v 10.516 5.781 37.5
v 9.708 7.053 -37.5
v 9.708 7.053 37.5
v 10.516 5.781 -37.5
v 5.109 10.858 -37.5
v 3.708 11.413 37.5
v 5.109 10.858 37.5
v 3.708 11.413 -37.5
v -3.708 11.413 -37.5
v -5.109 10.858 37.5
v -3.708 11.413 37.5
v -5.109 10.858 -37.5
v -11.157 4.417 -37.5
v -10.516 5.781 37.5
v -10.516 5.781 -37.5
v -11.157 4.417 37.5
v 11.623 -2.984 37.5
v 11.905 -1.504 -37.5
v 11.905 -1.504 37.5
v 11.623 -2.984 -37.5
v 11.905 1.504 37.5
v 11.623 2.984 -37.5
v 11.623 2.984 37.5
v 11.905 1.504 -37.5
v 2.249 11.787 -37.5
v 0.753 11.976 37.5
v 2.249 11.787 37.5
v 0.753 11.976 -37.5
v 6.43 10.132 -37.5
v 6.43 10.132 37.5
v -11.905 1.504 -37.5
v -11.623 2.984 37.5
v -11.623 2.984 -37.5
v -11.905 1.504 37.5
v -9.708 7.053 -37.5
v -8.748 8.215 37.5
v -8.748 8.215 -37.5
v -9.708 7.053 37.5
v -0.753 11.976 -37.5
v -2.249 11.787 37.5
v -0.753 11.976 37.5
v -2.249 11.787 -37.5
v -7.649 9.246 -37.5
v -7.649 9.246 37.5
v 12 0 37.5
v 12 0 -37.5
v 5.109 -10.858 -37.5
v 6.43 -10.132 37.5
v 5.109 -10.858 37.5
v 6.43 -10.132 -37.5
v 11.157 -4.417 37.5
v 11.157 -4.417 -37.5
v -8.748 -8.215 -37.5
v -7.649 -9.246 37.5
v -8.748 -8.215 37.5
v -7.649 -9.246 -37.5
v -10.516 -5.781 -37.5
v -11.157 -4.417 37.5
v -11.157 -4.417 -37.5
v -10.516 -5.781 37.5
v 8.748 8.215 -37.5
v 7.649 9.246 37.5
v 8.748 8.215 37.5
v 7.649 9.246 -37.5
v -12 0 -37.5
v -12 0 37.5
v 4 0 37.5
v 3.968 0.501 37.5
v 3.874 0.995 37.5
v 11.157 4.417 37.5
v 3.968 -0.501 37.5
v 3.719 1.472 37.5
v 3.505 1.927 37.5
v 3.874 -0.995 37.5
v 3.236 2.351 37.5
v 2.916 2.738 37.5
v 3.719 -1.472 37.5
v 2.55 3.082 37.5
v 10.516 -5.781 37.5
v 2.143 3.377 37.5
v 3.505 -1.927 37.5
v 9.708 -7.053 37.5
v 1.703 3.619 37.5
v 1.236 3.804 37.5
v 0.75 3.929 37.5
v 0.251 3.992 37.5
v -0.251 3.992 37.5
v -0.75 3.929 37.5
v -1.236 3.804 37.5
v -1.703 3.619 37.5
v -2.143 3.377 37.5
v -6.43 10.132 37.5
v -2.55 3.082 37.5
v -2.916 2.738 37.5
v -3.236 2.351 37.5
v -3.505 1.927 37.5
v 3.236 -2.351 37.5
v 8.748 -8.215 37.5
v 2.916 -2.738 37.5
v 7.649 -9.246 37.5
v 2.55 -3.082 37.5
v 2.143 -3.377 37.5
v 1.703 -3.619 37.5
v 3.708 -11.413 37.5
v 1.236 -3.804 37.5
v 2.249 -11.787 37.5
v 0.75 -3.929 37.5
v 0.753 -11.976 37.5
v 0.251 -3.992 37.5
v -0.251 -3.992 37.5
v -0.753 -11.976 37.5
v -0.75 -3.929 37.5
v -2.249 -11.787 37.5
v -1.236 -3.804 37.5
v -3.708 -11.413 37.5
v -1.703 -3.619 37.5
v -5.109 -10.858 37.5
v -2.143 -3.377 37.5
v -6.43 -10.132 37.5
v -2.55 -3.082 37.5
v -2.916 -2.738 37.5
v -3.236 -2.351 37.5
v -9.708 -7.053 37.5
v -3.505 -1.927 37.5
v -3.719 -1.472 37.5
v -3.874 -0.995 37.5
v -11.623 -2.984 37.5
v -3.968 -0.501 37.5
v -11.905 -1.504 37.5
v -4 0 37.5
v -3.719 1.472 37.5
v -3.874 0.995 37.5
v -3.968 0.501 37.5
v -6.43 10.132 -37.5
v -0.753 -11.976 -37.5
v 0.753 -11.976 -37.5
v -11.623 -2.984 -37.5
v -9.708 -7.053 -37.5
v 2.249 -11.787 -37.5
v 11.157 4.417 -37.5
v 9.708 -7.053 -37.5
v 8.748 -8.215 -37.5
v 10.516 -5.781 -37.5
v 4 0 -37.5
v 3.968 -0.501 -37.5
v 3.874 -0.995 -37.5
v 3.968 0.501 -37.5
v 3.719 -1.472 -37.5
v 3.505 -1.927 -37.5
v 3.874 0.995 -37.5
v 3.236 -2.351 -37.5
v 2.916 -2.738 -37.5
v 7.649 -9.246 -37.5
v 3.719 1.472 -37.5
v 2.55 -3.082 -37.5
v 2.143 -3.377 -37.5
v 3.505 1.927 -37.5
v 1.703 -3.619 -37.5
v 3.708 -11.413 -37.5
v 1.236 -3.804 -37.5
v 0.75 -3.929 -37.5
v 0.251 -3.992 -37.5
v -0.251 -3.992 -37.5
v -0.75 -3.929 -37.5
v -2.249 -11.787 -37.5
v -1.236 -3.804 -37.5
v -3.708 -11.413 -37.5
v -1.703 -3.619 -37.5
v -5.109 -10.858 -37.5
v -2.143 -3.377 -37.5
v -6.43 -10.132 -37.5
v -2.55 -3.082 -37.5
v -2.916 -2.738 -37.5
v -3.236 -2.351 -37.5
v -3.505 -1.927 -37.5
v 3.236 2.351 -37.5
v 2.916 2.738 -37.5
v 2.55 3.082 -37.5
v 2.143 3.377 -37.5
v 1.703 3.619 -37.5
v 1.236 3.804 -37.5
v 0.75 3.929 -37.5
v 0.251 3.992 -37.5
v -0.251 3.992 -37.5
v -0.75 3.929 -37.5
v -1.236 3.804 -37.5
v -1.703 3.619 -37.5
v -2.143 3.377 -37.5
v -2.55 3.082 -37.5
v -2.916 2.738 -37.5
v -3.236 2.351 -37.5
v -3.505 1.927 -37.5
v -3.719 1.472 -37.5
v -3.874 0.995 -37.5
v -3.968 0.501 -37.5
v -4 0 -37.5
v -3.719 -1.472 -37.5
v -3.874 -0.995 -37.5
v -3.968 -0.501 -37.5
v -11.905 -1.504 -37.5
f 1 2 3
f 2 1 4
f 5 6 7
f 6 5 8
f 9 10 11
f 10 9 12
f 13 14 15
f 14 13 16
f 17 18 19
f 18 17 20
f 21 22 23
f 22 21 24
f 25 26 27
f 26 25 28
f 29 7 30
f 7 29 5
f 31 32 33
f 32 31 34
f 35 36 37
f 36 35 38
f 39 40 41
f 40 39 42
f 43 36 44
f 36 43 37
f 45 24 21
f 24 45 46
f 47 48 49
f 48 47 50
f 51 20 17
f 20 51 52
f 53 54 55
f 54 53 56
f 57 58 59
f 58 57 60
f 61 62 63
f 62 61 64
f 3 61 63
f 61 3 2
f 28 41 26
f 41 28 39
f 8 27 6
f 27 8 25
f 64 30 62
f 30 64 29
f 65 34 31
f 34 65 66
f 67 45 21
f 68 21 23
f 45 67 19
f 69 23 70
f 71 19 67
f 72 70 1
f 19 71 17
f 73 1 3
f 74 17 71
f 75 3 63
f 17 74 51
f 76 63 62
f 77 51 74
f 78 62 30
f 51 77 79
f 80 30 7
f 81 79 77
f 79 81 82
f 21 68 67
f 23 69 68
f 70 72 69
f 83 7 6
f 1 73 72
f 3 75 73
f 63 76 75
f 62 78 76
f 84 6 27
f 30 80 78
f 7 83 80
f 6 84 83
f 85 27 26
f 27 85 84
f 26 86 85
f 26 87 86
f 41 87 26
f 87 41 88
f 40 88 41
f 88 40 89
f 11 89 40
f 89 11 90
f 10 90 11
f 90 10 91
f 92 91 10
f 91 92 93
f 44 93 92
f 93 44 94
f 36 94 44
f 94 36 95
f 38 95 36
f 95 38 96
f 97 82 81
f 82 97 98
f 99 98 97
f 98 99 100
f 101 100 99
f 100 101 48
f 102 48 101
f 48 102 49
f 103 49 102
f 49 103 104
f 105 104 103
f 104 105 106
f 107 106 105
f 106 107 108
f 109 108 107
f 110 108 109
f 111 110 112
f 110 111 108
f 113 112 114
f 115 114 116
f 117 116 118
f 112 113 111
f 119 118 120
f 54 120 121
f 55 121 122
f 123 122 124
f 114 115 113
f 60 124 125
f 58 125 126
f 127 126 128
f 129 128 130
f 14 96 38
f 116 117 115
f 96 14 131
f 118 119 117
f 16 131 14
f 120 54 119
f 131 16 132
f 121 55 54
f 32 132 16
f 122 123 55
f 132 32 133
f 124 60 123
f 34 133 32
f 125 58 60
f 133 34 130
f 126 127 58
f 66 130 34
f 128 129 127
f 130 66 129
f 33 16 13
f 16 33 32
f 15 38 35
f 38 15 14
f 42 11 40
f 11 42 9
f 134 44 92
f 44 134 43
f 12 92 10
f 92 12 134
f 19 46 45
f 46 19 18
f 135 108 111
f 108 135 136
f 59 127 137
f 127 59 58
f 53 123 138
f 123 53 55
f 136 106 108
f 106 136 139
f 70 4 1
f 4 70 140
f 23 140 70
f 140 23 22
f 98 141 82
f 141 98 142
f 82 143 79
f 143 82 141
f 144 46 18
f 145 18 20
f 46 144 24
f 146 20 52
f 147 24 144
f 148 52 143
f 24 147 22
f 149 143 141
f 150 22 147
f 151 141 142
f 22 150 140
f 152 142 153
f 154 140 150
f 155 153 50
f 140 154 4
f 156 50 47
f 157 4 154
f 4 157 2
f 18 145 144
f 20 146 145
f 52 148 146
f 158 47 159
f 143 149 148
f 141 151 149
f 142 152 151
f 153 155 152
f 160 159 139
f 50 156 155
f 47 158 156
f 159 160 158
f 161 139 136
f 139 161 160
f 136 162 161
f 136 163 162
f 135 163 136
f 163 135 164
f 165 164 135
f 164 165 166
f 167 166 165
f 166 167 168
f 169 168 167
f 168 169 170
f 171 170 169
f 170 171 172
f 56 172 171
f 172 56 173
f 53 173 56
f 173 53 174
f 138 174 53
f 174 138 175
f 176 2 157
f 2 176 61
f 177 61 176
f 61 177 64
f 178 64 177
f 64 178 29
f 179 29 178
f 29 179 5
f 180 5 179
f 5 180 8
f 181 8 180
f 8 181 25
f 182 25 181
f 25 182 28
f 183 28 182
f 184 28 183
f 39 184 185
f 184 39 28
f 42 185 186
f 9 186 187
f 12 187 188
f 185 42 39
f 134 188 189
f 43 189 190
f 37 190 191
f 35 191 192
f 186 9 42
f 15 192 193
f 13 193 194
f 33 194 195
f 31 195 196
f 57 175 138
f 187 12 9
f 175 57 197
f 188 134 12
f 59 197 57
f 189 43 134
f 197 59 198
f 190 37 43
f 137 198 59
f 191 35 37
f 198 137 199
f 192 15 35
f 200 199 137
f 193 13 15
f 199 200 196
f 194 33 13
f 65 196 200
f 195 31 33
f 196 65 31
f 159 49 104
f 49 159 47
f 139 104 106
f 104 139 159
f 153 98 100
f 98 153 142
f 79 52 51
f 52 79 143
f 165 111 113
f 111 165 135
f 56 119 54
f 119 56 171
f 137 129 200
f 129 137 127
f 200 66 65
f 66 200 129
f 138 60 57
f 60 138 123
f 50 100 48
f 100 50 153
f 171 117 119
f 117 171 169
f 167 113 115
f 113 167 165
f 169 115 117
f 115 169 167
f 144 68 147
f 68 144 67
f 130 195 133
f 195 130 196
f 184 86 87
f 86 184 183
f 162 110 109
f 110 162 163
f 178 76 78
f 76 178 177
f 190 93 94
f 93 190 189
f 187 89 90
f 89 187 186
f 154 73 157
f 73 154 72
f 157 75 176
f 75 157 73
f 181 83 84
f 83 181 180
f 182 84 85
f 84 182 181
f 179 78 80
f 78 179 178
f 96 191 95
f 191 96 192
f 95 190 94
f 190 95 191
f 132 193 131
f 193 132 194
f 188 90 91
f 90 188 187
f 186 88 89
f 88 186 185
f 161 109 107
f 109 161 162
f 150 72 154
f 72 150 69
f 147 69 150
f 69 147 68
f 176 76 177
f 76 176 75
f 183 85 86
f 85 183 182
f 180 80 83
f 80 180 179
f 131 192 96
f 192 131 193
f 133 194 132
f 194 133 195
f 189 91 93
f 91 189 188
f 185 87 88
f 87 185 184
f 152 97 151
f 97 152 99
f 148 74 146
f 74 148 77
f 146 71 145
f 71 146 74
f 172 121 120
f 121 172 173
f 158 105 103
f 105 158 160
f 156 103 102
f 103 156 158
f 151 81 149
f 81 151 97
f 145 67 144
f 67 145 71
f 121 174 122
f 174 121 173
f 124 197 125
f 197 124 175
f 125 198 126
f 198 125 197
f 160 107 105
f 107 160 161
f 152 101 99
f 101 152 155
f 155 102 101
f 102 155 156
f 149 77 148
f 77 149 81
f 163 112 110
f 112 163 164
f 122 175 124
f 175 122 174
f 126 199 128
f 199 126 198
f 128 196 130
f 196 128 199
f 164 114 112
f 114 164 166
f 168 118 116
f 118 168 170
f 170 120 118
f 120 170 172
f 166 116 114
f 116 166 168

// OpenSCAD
$fn = 50;


difference() {
	union() {
		translate(v = [0, 0, -37.5000000000]) {
			cylinder(h = 75, r = 12.0000000000);
		}
	}
	union() {
		translate(v = [0, 0, -100.0000000000]) {
			cylinder(h = 200, r = 4);
		}
	}
}
